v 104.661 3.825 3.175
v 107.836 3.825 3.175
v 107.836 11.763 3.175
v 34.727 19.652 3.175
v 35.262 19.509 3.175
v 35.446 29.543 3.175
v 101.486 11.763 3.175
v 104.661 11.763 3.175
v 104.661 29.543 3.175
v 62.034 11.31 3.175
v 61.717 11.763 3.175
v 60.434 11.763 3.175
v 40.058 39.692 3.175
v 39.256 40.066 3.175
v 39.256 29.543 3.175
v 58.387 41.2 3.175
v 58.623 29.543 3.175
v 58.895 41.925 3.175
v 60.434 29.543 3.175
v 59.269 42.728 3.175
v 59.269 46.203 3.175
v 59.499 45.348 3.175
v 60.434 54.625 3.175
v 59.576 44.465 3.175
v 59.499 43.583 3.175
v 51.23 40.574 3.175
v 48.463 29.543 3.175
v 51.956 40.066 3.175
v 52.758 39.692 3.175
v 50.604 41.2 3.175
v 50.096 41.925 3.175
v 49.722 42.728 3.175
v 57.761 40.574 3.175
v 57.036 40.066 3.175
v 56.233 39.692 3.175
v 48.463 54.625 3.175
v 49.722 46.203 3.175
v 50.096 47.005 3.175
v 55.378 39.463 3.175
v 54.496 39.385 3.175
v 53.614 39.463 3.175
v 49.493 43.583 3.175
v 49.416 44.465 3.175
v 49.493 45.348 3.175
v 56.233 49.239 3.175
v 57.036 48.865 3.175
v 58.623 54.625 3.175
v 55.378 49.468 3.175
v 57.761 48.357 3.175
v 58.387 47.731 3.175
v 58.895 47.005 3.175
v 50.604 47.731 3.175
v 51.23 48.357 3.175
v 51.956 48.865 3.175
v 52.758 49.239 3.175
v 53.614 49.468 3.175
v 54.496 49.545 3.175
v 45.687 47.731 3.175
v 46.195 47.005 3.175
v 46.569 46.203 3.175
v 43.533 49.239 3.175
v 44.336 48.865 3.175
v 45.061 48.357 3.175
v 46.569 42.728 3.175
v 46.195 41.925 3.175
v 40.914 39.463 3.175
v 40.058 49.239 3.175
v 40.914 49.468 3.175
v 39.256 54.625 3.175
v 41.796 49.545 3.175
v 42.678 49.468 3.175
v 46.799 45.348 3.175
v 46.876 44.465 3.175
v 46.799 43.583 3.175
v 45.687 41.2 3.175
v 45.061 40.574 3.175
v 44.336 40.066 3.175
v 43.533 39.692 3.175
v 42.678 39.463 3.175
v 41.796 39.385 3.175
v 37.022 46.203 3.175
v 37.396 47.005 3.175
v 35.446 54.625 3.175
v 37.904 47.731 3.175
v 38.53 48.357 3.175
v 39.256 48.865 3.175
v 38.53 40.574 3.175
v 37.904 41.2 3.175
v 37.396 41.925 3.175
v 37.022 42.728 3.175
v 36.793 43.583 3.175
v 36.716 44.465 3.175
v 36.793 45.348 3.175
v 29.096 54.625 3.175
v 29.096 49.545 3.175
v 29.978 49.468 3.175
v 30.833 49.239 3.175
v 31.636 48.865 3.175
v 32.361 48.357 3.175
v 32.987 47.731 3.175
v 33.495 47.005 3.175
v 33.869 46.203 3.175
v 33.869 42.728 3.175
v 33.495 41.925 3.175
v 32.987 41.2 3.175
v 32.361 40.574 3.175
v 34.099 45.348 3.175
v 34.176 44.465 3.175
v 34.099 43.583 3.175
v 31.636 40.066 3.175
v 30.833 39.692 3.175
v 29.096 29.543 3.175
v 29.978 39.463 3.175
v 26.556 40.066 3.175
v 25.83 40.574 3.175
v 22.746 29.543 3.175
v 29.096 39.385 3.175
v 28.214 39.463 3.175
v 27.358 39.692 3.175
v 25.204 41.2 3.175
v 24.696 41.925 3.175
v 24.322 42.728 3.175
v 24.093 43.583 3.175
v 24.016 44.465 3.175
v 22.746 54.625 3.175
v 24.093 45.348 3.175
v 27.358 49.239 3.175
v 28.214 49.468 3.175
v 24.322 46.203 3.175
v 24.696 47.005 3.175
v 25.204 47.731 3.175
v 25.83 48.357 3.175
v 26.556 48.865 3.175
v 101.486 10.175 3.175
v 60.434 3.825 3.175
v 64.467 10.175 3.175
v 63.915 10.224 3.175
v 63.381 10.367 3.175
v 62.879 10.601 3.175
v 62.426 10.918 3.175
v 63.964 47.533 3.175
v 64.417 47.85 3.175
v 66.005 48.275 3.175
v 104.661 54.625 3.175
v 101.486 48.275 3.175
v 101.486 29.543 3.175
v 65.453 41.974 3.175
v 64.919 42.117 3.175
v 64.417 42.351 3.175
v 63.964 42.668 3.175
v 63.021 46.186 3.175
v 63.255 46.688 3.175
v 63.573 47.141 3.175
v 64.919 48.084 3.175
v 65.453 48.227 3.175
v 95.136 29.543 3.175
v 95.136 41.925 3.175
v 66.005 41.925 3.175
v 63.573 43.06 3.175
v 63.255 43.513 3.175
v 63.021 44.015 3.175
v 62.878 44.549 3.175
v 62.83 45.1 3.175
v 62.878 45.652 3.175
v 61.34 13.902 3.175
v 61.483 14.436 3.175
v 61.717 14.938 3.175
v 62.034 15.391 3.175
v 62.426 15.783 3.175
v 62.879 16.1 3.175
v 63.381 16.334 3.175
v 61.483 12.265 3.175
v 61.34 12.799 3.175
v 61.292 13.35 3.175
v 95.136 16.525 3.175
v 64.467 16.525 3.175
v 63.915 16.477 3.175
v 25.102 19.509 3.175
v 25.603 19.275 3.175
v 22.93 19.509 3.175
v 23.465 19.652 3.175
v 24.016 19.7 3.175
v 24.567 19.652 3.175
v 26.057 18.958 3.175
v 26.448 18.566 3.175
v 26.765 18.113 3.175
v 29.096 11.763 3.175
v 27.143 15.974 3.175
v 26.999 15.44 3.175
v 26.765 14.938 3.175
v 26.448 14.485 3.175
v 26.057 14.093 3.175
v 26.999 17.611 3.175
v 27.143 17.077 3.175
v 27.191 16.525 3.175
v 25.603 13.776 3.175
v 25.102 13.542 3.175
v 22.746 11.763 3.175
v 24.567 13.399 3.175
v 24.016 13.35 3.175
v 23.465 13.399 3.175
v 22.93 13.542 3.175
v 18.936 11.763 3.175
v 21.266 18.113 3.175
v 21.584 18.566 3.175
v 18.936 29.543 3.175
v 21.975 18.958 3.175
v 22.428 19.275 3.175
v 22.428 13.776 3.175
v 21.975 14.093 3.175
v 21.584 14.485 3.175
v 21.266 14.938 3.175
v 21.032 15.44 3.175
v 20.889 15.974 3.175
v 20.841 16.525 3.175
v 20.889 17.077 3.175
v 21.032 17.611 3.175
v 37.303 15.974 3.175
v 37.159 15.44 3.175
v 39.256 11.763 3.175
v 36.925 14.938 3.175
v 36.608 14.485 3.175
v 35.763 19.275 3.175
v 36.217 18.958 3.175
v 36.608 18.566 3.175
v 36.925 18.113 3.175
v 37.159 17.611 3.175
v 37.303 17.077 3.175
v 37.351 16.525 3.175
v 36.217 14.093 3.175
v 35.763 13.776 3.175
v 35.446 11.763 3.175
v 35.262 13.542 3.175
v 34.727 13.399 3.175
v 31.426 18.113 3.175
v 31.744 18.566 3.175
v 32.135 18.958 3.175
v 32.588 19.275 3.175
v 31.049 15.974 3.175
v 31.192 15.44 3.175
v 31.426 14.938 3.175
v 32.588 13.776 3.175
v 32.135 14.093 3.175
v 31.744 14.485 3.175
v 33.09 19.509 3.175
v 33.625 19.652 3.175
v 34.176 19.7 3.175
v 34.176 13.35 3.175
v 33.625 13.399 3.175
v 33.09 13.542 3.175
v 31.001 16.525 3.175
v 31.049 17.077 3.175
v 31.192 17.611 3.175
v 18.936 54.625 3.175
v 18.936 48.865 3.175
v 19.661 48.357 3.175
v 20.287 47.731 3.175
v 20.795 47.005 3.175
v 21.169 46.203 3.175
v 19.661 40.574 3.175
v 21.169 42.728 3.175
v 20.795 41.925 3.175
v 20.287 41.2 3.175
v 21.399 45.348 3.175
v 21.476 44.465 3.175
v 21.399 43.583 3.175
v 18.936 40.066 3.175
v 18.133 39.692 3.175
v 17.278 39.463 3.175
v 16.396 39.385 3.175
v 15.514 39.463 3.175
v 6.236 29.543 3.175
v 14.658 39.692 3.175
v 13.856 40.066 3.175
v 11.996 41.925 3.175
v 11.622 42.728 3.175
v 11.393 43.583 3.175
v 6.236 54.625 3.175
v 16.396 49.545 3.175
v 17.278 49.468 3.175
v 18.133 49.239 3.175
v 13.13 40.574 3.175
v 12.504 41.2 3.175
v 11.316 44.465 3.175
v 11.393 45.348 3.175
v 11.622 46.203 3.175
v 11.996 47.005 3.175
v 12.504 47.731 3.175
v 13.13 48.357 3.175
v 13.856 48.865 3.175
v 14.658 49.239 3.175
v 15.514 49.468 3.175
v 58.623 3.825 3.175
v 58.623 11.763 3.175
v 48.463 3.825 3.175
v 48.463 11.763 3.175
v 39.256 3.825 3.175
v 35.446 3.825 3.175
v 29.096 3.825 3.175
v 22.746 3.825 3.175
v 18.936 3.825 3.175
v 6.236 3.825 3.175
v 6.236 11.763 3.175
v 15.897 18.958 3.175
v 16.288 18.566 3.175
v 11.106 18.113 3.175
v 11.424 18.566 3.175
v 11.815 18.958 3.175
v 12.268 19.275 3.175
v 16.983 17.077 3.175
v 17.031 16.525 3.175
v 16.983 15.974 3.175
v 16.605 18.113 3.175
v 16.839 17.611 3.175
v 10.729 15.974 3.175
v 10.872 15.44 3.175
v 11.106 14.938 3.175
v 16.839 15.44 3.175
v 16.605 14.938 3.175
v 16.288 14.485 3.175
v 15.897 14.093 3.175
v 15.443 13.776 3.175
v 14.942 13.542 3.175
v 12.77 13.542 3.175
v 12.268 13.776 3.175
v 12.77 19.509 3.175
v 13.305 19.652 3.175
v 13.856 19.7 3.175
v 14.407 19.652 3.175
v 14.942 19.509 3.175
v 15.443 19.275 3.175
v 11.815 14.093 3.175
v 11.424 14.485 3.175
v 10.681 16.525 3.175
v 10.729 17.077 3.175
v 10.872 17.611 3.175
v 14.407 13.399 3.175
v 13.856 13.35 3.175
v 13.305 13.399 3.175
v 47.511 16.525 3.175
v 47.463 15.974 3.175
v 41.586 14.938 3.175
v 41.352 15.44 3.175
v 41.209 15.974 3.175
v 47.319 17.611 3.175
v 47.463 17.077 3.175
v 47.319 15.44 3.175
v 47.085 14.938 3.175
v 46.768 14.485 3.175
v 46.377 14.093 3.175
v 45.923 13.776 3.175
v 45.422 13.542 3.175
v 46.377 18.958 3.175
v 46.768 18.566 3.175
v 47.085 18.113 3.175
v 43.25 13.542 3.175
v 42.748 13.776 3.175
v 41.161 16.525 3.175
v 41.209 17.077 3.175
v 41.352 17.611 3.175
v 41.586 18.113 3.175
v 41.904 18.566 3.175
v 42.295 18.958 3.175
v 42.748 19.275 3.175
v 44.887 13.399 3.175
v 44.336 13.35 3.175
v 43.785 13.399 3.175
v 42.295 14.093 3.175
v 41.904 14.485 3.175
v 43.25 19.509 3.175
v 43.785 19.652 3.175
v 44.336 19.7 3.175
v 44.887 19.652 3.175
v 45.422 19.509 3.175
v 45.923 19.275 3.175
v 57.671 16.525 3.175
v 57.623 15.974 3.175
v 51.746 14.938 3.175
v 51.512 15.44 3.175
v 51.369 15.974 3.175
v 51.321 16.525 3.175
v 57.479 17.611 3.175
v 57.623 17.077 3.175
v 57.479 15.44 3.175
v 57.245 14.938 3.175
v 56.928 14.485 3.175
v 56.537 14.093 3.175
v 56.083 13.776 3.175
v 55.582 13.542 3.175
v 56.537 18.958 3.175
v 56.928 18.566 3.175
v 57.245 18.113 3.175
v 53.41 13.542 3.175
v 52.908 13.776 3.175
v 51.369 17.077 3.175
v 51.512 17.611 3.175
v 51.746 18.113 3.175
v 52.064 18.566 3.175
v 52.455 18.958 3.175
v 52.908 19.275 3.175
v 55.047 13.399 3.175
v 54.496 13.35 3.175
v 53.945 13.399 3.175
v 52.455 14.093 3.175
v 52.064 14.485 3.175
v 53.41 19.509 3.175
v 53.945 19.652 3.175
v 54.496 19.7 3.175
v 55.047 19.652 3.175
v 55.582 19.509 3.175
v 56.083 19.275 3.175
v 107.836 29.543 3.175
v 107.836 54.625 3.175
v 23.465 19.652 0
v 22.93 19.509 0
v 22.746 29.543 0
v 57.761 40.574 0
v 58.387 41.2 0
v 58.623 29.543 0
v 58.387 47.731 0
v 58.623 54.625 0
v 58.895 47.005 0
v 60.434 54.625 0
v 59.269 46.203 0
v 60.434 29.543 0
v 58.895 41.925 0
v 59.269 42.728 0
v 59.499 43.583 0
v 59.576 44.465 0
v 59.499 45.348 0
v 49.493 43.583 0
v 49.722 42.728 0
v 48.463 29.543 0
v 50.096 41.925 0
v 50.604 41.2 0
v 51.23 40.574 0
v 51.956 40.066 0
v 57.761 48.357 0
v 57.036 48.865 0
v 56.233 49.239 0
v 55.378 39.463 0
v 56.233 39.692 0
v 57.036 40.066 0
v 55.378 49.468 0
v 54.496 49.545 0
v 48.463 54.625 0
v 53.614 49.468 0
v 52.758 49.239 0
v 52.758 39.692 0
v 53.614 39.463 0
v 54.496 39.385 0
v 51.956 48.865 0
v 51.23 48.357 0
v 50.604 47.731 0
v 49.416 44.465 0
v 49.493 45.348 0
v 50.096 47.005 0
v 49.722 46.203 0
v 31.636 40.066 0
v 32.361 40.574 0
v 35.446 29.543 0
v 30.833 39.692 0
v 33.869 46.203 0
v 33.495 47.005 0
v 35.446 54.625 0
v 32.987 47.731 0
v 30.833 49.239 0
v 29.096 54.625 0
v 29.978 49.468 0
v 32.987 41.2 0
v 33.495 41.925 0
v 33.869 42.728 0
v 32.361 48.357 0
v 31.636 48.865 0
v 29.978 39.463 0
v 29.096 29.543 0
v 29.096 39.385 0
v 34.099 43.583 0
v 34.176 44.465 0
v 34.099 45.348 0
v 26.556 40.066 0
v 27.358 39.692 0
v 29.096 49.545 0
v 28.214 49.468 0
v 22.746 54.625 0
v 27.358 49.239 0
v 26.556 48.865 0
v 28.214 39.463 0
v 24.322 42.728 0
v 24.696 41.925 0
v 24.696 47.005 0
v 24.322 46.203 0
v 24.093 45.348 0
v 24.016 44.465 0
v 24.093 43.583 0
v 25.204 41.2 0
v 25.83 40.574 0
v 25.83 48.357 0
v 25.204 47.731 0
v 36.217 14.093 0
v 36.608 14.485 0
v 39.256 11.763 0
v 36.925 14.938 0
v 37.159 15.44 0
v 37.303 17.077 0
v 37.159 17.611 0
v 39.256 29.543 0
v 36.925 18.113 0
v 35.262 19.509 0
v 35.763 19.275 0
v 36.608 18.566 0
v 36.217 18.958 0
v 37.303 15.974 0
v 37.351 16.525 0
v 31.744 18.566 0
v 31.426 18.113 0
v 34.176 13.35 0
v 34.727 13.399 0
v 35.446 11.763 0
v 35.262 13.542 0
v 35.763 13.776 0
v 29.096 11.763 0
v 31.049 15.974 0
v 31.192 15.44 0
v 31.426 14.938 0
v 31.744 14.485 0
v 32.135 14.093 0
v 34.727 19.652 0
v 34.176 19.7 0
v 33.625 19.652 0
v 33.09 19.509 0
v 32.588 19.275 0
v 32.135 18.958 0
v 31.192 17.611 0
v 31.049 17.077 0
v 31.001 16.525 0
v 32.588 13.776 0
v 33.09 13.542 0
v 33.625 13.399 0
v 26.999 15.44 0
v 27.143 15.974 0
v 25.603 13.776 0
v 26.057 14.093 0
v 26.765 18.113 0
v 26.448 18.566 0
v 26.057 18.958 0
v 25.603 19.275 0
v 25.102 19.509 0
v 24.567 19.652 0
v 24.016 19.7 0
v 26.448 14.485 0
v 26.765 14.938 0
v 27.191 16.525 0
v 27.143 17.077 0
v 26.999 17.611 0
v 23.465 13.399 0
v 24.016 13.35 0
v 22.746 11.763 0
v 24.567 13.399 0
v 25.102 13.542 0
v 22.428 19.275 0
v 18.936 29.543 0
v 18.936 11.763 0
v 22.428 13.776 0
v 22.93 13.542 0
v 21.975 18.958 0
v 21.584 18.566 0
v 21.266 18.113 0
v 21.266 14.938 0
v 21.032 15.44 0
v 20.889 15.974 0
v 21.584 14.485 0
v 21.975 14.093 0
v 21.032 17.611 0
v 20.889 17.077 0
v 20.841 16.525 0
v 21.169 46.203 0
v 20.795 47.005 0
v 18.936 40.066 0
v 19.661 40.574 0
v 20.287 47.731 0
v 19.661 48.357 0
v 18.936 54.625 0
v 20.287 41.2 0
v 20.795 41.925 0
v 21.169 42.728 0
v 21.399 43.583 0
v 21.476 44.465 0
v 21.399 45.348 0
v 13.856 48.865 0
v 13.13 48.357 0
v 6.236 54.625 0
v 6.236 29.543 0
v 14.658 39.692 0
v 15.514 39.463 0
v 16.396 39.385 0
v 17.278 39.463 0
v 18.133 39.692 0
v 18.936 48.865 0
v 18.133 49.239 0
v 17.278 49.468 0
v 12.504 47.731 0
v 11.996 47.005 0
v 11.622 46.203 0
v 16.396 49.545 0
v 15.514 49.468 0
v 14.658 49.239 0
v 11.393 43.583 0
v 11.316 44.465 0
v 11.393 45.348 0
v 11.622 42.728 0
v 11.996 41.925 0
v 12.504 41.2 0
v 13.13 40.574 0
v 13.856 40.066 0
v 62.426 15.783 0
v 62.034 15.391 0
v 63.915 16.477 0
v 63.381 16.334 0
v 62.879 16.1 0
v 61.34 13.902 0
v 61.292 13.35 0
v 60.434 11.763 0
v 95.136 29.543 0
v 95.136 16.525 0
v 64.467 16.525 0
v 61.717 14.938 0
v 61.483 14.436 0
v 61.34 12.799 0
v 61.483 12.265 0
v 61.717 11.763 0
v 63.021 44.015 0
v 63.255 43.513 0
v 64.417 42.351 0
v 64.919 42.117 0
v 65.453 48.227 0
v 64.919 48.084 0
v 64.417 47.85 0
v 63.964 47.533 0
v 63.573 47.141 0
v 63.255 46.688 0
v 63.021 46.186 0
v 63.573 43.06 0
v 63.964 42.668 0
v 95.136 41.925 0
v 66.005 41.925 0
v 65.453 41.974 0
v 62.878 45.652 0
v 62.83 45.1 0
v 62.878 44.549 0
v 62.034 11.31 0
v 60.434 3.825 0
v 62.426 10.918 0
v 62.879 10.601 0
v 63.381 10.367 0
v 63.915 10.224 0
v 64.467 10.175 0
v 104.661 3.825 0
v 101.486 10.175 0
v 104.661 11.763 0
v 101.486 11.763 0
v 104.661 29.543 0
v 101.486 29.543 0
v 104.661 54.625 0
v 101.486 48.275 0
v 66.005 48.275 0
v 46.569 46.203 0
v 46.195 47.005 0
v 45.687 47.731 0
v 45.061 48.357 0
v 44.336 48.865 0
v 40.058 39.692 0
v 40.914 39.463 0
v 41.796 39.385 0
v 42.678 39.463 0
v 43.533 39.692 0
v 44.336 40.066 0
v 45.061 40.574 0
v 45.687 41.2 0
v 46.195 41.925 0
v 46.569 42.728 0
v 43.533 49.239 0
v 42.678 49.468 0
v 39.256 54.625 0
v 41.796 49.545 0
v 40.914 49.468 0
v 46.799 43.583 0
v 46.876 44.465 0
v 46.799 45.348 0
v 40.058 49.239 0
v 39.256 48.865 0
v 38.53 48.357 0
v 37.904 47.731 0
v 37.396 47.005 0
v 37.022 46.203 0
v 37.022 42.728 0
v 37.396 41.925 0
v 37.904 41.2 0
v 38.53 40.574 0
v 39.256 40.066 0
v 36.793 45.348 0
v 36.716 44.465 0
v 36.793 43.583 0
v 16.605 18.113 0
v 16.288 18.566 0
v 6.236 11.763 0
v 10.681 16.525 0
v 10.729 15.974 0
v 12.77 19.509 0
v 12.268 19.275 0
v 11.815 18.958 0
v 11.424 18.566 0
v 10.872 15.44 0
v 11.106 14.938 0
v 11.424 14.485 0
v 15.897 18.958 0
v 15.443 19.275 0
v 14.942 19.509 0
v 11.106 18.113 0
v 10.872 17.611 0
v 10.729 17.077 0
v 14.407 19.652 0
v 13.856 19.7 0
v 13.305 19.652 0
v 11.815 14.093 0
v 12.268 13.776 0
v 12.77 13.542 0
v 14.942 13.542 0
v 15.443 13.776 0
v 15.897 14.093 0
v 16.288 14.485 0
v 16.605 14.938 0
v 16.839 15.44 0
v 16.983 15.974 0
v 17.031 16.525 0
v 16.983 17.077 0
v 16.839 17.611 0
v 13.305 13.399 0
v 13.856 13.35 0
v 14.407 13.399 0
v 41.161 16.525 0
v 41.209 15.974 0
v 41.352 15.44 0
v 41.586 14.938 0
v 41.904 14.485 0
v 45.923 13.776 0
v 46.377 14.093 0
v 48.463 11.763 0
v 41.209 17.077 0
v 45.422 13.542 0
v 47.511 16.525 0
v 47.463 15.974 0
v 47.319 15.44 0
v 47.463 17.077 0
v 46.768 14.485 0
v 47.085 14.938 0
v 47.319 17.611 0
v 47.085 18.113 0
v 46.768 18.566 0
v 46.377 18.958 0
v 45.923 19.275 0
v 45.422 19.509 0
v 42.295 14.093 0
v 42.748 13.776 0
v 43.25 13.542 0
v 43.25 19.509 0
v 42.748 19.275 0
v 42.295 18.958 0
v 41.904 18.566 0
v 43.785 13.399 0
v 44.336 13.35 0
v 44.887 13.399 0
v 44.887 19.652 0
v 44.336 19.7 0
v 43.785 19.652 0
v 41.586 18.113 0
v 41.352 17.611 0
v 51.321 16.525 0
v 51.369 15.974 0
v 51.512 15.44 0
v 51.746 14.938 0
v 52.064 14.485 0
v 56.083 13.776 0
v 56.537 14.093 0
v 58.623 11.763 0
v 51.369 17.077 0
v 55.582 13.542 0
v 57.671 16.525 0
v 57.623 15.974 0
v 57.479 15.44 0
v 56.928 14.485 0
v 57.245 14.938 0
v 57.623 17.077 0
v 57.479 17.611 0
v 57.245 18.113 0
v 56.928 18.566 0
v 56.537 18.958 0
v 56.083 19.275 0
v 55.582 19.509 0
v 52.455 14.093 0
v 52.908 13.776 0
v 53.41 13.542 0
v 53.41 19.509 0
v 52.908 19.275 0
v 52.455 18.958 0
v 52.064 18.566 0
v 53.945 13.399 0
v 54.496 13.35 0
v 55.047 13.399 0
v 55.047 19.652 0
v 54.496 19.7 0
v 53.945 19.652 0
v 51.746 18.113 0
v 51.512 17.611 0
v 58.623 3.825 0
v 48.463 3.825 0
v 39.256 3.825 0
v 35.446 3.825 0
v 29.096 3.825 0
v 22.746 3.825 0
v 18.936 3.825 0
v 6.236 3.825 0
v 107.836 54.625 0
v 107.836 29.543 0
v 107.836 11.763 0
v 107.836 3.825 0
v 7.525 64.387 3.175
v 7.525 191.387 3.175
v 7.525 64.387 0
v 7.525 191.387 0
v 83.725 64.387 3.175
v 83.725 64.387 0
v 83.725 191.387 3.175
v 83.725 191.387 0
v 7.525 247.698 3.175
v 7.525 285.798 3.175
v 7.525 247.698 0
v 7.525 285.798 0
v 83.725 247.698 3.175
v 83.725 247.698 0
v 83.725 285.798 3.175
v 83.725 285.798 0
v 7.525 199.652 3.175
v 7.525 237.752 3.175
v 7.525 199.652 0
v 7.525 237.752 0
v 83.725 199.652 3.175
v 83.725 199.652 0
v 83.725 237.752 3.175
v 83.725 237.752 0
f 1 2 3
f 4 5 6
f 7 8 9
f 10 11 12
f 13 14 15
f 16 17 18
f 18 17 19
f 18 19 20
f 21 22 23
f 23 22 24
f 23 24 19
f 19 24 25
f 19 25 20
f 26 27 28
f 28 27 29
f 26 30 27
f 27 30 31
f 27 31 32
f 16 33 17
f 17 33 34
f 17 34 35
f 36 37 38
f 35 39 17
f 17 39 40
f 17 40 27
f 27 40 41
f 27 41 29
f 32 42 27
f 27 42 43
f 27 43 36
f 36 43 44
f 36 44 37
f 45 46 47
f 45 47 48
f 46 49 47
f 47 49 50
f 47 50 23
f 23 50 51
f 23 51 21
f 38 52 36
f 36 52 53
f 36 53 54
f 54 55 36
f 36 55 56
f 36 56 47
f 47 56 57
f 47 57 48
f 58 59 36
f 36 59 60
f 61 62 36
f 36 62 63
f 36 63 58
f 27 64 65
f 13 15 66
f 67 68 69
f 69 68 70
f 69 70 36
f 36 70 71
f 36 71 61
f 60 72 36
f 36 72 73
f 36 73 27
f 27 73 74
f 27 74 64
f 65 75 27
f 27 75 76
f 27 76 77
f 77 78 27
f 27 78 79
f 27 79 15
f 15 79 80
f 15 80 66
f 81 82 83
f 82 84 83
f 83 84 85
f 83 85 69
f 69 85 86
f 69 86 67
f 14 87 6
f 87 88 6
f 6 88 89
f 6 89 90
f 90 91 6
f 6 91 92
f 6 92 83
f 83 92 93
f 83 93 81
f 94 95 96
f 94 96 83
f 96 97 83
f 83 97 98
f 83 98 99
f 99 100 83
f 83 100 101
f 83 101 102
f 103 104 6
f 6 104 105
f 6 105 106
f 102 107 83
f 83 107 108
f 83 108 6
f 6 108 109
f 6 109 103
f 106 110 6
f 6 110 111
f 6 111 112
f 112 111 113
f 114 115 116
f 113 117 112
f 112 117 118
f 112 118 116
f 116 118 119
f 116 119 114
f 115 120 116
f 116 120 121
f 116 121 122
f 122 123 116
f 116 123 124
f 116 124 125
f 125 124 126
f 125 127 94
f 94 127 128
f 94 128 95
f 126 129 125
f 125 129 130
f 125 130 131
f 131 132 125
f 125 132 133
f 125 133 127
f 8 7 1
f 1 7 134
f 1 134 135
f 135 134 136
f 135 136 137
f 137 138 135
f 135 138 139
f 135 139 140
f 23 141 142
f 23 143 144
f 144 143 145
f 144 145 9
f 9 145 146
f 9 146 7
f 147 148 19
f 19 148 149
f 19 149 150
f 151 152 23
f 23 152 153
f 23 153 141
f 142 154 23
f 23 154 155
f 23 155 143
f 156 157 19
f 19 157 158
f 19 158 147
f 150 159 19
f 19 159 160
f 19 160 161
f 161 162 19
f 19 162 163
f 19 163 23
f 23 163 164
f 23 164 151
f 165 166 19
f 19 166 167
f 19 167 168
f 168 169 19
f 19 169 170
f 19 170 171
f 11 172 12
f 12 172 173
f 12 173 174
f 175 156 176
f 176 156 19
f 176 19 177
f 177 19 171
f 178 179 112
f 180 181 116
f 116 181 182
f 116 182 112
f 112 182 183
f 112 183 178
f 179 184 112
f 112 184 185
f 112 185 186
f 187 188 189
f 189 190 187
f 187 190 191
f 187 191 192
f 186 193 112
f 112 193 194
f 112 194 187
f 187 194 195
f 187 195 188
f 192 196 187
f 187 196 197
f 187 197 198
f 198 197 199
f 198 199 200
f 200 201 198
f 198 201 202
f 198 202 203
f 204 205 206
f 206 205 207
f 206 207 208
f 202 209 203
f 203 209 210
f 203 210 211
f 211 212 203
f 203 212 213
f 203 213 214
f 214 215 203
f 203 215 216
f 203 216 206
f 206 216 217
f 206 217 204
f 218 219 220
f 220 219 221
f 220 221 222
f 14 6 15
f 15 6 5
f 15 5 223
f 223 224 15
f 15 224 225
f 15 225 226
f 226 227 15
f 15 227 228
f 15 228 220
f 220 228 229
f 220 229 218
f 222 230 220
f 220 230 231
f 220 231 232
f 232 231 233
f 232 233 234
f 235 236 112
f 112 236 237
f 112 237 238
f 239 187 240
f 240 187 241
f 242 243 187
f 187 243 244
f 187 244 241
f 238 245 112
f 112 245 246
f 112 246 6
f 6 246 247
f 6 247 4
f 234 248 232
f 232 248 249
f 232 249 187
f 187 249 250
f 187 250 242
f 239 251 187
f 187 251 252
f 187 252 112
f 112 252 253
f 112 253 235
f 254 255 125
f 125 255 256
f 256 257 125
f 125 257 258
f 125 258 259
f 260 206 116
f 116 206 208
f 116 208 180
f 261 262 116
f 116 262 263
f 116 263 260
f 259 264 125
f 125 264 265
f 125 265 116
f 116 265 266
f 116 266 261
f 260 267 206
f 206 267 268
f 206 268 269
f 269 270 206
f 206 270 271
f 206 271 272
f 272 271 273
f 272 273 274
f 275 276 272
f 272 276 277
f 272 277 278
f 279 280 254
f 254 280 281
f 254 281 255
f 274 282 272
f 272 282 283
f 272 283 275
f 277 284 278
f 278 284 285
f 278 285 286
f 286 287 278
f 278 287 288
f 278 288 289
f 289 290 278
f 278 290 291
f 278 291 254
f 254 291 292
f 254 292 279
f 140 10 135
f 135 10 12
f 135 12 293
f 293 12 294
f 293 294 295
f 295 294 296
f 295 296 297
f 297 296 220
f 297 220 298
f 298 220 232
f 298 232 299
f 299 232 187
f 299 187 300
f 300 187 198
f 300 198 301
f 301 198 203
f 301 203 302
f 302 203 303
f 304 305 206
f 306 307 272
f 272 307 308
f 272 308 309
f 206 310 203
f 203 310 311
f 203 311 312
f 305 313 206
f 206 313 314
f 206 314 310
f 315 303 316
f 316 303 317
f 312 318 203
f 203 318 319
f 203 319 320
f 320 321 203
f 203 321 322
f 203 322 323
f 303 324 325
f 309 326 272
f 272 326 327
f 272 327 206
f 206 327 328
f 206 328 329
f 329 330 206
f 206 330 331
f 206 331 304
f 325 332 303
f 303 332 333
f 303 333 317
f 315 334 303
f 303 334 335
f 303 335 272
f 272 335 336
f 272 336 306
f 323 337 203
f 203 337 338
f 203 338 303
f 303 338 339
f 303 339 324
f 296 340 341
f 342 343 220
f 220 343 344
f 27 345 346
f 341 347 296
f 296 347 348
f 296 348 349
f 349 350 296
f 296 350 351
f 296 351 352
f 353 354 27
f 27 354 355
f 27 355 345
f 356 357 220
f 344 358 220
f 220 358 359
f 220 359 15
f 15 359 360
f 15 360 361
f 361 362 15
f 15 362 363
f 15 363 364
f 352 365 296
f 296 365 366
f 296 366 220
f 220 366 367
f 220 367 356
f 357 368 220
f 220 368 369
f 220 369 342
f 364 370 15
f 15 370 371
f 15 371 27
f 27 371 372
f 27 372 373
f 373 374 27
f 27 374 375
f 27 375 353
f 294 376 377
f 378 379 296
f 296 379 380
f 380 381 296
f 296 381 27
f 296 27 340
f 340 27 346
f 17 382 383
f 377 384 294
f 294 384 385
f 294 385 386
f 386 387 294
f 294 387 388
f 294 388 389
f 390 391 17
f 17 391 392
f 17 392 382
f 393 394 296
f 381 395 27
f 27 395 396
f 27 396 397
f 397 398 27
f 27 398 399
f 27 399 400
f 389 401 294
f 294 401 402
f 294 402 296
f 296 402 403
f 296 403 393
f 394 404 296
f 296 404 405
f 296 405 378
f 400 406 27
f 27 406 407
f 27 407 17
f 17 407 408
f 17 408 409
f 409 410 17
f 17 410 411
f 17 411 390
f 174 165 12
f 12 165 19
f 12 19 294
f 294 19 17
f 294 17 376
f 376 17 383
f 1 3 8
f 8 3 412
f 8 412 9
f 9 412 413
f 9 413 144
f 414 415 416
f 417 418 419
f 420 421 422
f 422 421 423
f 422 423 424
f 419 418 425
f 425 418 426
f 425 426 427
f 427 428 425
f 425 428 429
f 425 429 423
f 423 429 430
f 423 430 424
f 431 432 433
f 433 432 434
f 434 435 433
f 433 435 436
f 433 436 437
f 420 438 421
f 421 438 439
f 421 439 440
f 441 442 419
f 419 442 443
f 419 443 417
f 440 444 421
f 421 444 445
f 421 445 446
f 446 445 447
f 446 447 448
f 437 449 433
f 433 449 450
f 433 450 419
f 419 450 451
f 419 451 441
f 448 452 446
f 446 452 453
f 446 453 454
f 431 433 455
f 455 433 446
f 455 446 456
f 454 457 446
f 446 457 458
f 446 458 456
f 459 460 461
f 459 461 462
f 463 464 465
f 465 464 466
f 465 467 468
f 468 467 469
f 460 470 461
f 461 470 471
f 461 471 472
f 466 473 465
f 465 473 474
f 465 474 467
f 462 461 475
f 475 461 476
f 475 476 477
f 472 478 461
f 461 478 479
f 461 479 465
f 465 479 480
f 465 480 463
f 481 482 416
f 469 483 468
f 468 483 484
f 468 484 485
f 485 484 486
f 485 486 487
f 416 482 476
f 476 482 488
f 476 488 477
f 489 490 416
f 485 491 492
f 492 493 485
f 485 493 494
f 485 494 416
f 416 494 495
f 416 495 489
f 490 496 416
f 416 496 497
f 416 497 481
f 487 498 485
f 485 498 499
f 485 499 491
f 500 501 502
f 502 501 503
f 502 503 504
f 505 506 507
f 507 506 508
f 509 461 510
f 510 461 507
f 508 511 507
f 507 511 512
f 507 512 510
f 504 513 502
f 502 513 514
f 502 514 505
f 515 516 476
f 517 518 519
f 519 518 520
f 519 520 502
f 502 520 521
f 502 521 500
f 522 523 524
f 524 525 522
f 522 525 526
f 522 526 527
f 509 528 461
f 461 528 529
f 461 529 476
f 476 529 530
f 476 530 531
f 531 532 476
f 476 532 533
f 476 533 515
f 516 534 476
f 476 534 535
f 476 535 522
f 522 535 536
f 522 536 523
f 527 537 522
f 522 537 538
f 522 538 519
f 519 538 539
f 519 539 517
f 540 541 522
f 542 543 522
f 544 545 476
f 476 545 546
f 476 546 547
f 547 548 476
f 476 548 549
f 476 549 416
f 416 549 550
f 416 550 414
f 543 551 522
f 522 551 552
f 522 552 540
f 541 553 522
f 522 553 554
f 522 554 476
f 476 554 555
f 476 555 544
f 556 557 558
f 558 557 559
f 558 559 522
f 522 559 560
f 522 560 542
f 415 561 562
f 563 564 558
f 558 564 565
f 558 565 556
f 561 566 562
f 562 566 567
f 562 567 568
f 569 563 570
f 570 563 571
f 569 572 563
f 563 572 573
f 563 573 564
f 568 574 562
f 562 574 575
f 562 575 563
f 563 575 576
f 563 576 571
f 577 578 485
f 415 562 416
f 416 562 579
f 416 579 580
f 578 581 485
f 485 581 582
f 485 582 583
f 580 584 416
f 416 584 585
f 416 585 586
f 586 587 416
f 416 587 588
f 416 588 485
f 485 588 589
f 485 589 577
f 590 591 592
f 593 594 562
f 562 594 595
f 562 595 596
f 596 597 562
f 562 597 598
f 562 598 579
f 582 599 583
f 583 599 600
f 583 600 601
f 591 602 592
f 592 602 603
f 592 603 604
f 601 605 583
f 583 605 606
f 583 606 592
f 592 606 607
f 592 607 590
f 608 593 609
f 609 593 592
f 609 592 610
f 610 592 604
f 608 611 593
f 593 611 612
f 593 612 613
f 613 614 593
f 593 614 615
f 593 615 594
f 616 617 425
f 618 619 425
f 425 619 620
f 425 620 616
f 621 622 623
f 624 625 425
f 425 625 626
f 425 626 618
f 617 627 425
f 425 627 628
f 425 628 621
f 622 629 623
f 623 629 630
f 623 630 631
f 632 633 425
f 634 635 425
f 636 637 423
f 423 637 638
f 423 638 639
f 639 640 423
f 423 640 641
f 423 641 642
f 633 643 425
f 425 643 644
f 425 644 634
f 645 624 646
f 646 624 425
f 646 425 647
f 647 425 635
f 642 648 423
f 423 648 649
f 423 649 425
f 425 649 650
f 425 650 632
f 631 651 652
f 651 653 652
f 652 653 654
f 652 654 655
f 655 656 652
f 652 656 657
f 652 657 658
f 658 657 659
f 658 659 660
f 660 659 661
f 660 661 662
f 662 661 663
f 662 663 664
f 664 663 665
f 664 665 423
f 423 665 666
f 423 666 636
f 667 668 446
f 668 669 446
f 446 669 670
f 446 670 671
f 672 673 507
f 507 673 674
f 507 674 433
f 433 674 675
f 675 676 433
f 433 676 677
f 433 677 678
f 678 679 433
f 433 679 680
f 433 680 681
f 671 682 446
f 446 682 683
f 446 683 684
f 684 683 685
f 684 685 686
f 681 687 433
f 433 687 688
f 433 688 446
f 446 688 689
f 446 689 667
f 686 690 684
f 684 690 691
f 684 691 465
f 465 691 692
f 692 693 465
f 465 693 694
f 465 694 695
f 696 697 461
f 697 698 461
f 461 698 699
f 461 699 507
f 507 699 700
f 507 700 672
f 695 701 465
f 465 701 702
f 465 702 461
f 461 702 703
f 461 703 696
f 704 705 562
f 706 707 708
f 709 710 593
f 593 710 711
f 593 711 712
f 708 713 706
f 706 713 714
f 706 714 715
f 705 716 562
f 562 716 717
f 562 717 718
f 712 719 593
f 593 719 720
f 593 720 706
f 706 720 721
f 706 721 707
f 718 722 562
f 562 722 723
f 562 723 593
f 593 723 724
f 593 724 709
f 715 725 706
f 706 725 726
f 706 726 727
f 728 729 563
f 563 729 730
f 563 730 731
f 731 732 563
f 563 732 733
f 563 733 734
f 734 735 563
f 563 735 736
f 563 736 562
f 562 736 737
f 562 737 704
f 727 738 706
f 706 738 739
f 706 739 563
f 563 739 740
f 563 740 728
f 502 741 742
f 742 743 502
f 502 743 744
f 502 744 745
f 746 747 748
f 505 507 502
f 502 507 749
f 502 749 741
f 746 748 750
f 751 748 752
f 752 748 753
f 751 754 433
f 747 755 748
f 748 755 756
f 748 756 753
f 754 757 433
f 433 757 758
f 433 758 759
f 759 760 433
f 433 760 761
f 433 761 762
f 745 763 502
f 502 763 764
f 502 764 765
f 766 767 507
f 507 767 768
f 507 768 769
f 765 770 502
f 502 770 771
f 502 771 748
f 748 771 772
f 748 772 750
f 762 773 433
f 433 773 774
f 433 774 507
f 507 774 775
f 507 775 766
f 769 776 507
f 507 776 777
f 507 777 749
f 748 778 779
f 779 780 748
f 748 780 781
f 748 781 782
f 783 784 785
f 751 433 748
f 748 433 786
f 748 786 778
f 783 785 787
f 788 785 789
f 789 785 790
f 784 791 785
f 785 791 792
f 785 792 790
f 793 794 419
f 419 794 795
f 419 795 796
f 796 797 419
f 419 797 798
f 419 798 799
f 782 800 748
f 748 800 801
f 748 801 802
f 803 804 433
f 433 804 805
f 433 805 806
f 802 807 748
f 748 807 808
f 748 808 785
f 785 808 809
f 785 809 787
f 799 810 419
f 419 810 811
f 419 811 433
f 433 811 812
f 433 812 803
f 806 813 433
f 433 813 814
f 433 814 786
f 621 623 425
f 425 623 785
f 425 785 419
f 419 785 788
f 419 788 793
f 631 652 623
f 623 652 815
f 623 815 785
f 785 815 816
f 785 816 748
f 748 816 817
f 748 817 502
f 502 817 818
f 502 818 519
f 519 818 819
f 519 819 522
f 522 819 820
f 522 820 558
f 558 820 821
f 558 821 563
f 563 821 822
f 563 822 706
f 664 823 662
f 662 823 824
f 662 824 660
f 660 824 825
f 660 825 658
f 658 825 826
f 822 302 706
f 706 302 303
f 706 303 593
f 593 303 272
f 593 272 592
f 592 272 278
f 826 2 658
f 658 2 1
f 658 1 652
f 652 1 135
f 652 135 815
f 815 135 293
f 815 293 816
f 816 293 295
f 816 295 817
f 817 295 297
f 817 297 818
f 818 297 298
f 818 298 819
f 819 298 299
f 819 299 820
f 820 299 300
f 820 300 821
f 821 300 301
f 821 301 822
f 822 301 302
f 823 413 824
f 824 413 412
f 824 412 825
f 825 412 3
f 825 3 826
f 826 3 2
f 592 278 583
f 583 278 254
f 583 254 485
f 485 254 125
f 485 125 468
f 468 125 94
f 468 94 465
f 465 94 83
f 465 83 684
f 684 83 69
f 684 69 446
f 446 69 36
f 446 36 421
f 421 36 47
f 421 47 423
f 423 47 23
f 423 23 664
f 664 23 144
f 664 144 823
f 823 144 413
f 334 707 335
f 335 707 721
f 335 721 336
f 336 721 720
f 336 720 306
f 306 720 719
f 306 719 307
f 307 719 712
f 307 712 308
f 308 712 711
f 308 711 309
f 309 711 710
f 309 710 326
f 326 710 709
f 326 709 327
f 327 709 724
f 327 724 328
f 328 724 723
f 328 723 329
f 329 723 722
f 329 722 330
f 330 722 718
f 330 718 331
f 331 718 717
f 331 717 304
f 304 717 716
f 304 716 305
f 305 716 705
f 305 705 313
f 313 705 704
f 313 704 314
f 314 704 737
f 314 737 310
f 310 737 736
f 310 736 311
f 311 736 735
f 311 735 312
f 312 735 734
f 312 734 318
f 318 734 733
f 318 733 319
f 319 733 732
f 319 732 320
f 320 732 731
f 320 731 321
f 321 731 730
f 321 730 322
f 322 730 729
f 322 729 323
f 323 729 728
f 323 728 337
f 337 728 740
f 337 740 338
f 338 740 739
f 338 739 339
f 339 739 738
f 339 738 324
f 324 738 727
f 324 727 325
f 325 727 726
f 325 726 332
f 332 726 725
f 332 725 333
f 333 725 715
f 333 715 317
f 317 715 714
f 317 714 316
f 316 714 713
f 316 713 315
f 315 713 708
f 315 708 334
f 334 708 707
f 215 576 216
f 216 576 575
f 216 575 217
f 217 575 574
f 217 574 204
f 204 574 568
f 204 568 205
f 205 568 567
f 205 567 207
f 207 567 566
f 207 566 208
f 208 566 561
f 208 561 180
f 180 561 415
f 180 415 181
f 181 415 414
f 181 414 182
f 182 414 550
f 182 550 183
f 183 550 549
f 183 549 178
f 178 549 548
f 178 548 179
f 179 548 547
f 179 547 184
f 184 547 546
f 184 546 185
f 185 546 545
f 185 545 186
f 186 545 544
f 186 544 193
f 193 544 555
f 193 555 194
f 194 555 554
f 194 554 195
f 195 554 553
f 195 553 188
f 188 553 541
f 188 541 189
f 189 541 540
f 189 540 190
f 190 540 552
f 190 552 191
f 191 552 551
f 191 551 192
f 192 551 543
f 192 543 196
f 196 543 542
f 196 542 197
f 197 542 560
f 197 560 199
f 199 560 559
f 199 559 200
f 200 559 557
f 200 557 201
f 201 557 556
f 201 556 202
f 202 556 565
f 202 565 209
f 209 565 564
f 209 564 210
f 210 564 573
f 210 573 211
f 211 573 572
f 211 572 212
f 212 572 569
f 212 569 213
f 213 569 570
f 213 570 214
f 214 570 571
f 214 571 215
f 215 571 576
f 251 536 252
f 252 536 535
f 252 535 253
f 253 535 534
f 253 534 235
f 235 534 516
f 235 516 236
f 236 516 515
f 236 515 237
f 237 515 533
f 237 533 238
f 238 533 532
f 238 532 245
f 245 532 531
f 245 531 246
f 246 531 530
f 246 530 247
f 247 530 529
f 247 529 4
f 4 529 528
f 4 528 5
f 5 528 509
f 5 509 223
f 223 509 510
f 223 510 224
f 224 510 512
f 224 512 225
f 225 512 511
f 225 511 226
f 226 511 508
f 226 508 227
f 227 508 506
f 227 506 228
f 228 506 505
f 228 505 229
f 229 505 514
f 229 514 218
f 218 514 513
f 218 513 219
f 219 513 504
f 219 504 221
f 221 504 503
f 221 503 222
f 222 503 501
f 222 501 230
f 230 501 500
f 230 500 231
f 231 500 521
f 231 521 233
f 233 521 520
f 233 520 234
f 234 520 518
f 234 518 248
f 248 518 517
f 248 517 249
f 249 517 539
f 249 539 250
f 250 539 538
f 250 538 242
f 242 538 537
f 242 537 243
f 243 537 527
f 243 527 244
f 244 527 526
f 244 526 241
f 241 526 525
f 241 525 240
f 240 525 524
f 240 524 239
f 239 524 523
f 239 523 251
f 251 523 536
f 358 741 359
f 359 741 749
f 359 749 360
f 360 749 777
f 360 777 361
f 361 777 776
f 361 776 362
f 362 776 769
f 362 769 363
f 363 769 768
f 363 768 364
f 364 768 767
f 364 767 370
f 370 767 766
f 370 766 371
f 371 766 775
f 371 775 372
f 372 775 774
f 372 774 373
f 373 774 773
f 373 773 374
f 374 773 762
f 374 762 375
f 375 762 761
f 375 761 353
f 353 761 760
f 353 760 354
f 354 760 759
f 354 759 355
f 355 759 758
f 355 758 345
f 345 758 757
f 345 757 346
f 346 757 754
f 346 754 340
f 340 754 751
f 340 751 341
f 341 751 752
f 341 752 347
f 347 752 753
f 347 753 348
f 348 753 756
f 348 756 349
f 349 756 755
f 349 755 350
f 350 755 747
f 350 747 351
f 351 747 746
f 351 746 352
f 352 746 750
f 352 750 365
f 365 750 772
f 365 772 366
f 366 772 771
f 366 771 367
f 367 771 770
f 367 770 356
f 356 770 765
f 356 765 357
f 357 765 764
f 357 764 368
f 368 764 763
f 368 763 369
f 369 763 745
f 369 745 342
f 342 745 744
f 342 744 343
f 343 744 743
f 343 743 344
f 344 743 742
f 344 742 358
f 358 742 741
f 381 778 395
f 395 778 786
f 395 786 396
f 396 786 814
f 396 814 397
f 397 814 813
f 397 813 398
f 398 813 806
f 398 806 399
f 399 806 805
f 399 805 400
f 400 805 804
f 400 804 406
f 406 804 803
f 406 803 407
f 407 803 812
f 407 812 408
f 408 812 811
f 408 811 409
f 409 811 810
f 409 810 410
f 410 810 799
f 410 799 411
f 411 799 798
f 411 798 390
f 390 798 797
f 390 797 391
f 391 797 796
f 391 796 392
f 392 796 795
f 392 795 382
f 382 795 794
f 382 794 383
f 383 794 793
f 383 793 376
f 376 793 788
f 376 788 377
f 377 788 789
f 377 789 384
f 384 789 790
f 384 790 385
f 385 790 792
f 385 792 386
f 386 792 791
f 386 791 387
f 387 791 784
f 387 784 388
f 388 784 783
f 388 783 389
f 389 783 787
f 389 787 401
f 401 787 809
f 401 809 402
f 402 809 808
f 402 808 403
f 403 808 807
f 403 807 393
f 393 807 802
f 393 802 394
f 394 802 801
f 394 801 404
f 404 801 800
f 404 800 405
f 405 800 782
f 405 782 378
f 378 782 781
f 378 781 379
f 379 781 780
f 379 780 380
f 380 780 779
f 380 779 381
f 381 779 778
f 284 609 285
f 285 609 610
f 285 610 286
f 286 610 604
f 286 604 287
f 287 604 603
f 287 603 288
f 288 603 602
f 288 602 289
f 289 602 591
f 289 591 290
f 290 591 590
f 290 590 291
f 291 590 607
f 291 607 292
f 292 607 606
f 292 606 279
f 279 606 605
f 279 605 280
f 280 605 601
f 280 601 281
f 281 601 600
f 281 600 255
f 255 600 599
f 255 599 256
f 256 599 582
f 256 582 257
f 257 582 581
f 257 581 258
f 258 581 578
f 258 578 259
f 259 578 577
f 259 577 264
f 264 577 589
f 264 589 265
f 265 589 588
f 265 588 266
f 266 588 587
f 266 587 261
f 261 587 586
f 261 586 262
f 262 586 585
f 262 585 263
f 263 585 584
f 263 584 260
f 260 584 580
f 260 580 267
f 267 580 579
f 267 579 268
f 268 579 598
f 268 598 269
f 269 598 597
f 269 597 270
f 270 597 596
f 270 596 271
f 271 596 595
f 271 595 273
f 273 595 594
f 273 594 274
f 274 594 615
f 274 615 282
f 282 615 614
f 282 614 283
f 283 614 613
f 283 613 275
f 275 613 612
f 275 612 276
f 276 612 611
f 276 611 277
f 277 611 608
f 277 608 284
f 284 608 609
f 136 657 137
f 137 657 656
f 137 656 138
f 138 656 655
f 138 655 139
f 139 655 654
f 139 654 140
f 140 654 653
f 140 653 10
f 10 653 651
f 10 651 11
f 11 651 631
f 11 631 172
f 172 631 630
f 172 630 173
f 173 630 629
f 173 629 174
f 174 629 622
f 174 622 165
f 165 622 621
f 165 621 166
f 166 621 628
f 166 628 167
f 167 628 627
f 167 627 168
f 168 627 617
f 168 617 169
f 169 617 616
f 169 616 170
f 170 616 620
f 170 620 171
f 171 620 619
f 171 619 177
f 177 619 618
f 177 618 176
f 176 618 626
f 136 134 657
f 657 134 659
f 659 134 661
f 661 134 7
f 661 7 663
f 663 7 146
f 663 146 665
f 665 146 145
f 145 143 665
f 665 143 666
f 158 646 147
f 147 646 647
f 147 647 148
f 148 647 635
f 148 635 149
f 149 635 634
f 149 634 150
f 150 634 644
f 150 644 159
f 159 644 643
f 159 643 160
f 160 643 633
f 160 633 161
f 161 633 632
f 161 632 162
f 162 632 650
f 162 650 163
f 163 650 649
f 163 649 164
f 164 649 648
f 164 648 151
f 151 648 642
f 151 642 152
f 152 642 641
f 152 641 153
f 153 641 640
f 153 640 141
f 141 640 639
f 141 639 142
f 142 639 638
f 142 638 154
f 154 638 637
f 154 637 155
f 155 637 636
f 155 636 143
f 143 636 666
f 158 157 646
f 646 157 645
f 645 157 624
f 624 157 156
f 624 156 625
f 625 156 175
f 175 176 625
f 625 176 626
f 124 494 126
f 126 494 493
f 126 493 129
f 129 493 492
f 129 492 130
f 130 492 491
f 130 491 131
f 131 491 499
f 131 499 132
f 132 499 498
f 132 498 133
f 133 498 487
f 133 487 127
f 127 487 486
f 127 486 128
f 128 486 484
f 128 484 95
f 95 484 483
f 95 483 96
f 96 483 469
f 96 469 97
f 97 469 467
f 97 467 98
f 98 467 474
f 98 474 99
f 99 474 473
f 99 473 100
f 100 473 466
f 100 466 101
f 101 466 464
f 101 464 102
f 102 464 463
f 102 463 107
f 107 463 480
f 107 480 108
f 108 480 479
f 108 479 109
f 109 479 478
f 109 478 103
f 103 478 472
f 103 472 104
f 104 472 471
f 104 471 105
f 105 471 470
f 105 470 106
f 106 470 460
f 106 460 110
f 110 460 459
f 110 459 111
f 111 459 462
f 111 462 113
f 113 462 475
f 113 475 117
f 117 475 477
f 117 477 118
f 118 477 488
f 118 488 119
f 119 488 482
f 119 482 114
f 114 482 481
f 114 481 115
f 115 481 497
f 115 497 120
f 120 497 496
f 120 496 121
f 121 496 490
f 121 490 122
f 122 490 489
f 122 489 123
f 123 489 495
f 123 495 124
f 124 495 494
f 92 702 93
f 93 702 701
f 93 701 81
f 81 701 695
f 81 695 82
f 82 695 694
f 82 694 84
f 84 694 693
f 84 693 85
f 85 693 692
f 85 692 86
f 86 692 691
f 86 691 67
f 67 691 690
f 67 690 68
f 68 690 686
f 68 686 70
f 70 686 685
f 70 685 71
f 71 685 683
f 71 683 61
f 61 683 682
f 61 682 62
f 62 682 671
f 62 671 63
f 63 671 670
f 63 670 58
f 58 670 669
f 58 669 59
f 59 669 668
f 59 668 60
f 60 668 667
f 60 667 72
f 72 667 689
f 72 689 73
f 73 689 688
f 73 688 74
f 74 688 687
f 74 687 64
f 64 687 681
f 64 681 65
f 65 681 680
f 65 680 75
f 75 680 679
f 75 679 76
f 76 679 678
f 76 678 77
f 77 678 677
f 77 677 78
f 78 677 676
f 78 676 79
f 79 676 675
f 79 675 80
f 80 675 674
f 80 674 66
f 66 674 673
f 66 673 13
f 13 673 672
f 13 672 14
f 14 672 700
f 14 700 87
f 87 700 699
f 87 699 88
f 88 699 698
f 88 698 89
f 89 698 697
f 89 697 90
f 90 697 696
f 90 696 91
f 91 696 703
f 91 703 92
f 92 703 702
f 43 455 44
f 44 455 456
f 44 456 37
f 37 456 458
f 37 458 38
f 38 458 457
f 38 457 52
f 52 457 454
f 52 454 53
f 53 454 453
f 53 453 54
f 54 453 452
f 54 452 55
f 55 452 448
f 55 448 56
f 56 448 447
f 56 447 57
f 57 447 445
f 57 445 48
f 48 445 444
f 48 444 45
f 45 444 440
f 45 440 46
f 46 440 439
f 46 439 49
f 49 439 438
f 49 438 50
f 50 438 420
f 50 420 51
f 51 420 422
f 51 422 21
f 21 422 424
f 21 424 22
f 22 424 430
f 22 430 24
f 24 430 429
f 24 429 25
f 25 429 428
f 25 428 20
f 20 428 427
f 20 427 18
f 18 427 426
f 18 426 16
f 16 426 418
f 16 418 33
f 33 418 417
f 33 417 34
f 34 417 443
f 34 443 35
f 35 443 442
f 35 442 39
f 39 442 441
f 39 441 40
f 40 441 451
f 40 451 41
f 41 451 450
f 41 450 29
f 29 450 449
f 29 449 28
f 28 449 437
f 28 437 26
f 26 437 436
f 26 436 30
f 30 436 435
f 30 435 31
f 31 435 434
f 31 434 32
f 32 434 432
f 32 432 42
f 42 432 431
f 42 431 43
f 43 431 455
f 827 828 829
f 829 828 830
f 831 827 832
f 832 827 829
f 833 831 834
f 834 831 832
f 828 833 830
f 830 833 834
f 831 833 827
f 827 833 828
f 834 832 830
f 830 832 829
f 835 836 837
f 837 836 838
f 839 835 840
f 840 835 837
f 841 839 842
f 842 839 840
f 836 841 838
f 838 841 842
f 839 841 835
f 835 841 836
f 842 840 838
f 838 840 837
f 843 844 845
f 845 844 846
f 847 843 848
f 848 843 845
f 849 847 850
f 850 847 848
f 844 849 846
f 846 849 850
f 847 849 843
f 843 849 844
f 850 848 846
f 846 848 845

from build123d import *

# Parameters (mm, degrees)
SKETCH4_W             = 101.6
SKETCH4_H             = 50.8
SKETCH4_R             = 3.175
SKETCH4_R_2           = 5.08
BOSS_EXTRUDE1_DEPTH   = 3.175
SKETCH4_W_2           = 76.2
SKETCH4_H_2           = 127
BOSS_EXTRUDE1_2_DEPTH = 3.175
SKETCH4_H_3           = 38.1
BOSS_EXTRUDE1_3_DEPTH = 3.175
BOSS_EXTRUDE1_4_DEPTH = 3.175


with BuildPart() as part:
    # Sketch4 → Boss-Extrude1 (new body)
    with BuildSketch(Plane.XY):
        with Locations((57.035846179, 29.225487274)):
            Rectangle(SKETCH4_W, SKETCH4_H)
        with Locations((13.855846179, 16.525487274)):
            Circle(SKETCH4_R, mode=Mode.SUBTRACT)
        with Locations((24.015846179, 16.525487274)):
            Circle(SKETCH4_R, mode=Mode.SUBTRACT)
        with Locations((34.175846179, 16.525487274)):
            Circle(SKETCH4_R, mode=Mode.SUBTRACT)
        with Locations((44.335846179, 16.525487274)):
            Circle(SKETCH4_R, mode=Mode.SUBTRACT)
        with Locations((54.495846179, 16.525487274)):
            Circle(SKETCH4_R, mode=Mode.SUBTRACT)
        with Locations((16.395846179, 44.465487274)):
            Circle(SKETCH4_R_2, mode=Mode.SUBTRACT)
        with Locations((29.095846179, 44.465487274)):
            Circle(SKETCH4_R_2, mode=Mode.SUBTRACT)
        with Locations((41.795846179, 44.465487274)):
            Circle(SKETCH4_R_2, mode=Mode.SUBTRACT)
        with Locations((54.495846179, 44.465487274)):
            Circle(SKETCH4_R_2, mode=Mode.SUBTRACT)
        with BuildLine():
            Line((64.46655377, 16.525487274), (95.135846179, 16.525487274))
            Line((95.135846179, 16.525487274), (95.135846179, 41.925487274))
            Line((95.135846179, 41.925487274), (66.004814465, 41.925487274))
            ThreePointArc((66.004814465, 41.925487274), (62.829814465, 45.100487274), (66.004814465, 48.275487274))
            Line((66.004814465, 48.275487274), (101.485846179, 48.275487274))
            Line((101.485846179, 48.275487274), (101.485846179, 10.175487274))
            Line((101.485846179, 10.175487274), (64.46655377, 10.175487274))
            ThreePointArc((64.46655377, 10.175487274), (61.29155377, 13.350487274), (64.46655377, 16.525487274))
        make_face(mode=Mode.SUBTRACT)
    extrude(amount=BOSS_EXTRUDE1_DEPTH)


with BuildPart() as body_2:
    # Sketch4 → Boss-Extrude1 2 (new body)
    with BuildSketch(Plane.XY):
        with Locations((45.624983243, 127.887090926)):
            Rectangle(SKETCH4_W_2, SKETCH4_H_2)
    extrude(amount=BOSS_EXTRUDE1_2_DEPTH)


with BuildPart() as body_3:
    # Sketch4 → Boss-Extrude1 3 (new body)
    with BuildSketch(Plane.XY):
        with Locations((45.624983243, 266.747740762)):
            Rectangle(SKETCH4_W_2, SKETCH4_H_3)
    extrude(amount=BOSS_EXTRUDE1_3_DEPTH)


with BuildPart() as body_4:
    # Sketch4 → Boss-Extrude1 4 (new body)
    with BuildSketch(Plane.XY):
        with Locations((45.624983243, 218.702437589)):
            Rectangle(SKETCH4_W_2, SKETCH4_H_3)
    extrude(amount=BOSS_EXTRUDE1_4_DEPTH)


solid = Compound([part.part, body_2.part, body_3.part, body_4.part])
